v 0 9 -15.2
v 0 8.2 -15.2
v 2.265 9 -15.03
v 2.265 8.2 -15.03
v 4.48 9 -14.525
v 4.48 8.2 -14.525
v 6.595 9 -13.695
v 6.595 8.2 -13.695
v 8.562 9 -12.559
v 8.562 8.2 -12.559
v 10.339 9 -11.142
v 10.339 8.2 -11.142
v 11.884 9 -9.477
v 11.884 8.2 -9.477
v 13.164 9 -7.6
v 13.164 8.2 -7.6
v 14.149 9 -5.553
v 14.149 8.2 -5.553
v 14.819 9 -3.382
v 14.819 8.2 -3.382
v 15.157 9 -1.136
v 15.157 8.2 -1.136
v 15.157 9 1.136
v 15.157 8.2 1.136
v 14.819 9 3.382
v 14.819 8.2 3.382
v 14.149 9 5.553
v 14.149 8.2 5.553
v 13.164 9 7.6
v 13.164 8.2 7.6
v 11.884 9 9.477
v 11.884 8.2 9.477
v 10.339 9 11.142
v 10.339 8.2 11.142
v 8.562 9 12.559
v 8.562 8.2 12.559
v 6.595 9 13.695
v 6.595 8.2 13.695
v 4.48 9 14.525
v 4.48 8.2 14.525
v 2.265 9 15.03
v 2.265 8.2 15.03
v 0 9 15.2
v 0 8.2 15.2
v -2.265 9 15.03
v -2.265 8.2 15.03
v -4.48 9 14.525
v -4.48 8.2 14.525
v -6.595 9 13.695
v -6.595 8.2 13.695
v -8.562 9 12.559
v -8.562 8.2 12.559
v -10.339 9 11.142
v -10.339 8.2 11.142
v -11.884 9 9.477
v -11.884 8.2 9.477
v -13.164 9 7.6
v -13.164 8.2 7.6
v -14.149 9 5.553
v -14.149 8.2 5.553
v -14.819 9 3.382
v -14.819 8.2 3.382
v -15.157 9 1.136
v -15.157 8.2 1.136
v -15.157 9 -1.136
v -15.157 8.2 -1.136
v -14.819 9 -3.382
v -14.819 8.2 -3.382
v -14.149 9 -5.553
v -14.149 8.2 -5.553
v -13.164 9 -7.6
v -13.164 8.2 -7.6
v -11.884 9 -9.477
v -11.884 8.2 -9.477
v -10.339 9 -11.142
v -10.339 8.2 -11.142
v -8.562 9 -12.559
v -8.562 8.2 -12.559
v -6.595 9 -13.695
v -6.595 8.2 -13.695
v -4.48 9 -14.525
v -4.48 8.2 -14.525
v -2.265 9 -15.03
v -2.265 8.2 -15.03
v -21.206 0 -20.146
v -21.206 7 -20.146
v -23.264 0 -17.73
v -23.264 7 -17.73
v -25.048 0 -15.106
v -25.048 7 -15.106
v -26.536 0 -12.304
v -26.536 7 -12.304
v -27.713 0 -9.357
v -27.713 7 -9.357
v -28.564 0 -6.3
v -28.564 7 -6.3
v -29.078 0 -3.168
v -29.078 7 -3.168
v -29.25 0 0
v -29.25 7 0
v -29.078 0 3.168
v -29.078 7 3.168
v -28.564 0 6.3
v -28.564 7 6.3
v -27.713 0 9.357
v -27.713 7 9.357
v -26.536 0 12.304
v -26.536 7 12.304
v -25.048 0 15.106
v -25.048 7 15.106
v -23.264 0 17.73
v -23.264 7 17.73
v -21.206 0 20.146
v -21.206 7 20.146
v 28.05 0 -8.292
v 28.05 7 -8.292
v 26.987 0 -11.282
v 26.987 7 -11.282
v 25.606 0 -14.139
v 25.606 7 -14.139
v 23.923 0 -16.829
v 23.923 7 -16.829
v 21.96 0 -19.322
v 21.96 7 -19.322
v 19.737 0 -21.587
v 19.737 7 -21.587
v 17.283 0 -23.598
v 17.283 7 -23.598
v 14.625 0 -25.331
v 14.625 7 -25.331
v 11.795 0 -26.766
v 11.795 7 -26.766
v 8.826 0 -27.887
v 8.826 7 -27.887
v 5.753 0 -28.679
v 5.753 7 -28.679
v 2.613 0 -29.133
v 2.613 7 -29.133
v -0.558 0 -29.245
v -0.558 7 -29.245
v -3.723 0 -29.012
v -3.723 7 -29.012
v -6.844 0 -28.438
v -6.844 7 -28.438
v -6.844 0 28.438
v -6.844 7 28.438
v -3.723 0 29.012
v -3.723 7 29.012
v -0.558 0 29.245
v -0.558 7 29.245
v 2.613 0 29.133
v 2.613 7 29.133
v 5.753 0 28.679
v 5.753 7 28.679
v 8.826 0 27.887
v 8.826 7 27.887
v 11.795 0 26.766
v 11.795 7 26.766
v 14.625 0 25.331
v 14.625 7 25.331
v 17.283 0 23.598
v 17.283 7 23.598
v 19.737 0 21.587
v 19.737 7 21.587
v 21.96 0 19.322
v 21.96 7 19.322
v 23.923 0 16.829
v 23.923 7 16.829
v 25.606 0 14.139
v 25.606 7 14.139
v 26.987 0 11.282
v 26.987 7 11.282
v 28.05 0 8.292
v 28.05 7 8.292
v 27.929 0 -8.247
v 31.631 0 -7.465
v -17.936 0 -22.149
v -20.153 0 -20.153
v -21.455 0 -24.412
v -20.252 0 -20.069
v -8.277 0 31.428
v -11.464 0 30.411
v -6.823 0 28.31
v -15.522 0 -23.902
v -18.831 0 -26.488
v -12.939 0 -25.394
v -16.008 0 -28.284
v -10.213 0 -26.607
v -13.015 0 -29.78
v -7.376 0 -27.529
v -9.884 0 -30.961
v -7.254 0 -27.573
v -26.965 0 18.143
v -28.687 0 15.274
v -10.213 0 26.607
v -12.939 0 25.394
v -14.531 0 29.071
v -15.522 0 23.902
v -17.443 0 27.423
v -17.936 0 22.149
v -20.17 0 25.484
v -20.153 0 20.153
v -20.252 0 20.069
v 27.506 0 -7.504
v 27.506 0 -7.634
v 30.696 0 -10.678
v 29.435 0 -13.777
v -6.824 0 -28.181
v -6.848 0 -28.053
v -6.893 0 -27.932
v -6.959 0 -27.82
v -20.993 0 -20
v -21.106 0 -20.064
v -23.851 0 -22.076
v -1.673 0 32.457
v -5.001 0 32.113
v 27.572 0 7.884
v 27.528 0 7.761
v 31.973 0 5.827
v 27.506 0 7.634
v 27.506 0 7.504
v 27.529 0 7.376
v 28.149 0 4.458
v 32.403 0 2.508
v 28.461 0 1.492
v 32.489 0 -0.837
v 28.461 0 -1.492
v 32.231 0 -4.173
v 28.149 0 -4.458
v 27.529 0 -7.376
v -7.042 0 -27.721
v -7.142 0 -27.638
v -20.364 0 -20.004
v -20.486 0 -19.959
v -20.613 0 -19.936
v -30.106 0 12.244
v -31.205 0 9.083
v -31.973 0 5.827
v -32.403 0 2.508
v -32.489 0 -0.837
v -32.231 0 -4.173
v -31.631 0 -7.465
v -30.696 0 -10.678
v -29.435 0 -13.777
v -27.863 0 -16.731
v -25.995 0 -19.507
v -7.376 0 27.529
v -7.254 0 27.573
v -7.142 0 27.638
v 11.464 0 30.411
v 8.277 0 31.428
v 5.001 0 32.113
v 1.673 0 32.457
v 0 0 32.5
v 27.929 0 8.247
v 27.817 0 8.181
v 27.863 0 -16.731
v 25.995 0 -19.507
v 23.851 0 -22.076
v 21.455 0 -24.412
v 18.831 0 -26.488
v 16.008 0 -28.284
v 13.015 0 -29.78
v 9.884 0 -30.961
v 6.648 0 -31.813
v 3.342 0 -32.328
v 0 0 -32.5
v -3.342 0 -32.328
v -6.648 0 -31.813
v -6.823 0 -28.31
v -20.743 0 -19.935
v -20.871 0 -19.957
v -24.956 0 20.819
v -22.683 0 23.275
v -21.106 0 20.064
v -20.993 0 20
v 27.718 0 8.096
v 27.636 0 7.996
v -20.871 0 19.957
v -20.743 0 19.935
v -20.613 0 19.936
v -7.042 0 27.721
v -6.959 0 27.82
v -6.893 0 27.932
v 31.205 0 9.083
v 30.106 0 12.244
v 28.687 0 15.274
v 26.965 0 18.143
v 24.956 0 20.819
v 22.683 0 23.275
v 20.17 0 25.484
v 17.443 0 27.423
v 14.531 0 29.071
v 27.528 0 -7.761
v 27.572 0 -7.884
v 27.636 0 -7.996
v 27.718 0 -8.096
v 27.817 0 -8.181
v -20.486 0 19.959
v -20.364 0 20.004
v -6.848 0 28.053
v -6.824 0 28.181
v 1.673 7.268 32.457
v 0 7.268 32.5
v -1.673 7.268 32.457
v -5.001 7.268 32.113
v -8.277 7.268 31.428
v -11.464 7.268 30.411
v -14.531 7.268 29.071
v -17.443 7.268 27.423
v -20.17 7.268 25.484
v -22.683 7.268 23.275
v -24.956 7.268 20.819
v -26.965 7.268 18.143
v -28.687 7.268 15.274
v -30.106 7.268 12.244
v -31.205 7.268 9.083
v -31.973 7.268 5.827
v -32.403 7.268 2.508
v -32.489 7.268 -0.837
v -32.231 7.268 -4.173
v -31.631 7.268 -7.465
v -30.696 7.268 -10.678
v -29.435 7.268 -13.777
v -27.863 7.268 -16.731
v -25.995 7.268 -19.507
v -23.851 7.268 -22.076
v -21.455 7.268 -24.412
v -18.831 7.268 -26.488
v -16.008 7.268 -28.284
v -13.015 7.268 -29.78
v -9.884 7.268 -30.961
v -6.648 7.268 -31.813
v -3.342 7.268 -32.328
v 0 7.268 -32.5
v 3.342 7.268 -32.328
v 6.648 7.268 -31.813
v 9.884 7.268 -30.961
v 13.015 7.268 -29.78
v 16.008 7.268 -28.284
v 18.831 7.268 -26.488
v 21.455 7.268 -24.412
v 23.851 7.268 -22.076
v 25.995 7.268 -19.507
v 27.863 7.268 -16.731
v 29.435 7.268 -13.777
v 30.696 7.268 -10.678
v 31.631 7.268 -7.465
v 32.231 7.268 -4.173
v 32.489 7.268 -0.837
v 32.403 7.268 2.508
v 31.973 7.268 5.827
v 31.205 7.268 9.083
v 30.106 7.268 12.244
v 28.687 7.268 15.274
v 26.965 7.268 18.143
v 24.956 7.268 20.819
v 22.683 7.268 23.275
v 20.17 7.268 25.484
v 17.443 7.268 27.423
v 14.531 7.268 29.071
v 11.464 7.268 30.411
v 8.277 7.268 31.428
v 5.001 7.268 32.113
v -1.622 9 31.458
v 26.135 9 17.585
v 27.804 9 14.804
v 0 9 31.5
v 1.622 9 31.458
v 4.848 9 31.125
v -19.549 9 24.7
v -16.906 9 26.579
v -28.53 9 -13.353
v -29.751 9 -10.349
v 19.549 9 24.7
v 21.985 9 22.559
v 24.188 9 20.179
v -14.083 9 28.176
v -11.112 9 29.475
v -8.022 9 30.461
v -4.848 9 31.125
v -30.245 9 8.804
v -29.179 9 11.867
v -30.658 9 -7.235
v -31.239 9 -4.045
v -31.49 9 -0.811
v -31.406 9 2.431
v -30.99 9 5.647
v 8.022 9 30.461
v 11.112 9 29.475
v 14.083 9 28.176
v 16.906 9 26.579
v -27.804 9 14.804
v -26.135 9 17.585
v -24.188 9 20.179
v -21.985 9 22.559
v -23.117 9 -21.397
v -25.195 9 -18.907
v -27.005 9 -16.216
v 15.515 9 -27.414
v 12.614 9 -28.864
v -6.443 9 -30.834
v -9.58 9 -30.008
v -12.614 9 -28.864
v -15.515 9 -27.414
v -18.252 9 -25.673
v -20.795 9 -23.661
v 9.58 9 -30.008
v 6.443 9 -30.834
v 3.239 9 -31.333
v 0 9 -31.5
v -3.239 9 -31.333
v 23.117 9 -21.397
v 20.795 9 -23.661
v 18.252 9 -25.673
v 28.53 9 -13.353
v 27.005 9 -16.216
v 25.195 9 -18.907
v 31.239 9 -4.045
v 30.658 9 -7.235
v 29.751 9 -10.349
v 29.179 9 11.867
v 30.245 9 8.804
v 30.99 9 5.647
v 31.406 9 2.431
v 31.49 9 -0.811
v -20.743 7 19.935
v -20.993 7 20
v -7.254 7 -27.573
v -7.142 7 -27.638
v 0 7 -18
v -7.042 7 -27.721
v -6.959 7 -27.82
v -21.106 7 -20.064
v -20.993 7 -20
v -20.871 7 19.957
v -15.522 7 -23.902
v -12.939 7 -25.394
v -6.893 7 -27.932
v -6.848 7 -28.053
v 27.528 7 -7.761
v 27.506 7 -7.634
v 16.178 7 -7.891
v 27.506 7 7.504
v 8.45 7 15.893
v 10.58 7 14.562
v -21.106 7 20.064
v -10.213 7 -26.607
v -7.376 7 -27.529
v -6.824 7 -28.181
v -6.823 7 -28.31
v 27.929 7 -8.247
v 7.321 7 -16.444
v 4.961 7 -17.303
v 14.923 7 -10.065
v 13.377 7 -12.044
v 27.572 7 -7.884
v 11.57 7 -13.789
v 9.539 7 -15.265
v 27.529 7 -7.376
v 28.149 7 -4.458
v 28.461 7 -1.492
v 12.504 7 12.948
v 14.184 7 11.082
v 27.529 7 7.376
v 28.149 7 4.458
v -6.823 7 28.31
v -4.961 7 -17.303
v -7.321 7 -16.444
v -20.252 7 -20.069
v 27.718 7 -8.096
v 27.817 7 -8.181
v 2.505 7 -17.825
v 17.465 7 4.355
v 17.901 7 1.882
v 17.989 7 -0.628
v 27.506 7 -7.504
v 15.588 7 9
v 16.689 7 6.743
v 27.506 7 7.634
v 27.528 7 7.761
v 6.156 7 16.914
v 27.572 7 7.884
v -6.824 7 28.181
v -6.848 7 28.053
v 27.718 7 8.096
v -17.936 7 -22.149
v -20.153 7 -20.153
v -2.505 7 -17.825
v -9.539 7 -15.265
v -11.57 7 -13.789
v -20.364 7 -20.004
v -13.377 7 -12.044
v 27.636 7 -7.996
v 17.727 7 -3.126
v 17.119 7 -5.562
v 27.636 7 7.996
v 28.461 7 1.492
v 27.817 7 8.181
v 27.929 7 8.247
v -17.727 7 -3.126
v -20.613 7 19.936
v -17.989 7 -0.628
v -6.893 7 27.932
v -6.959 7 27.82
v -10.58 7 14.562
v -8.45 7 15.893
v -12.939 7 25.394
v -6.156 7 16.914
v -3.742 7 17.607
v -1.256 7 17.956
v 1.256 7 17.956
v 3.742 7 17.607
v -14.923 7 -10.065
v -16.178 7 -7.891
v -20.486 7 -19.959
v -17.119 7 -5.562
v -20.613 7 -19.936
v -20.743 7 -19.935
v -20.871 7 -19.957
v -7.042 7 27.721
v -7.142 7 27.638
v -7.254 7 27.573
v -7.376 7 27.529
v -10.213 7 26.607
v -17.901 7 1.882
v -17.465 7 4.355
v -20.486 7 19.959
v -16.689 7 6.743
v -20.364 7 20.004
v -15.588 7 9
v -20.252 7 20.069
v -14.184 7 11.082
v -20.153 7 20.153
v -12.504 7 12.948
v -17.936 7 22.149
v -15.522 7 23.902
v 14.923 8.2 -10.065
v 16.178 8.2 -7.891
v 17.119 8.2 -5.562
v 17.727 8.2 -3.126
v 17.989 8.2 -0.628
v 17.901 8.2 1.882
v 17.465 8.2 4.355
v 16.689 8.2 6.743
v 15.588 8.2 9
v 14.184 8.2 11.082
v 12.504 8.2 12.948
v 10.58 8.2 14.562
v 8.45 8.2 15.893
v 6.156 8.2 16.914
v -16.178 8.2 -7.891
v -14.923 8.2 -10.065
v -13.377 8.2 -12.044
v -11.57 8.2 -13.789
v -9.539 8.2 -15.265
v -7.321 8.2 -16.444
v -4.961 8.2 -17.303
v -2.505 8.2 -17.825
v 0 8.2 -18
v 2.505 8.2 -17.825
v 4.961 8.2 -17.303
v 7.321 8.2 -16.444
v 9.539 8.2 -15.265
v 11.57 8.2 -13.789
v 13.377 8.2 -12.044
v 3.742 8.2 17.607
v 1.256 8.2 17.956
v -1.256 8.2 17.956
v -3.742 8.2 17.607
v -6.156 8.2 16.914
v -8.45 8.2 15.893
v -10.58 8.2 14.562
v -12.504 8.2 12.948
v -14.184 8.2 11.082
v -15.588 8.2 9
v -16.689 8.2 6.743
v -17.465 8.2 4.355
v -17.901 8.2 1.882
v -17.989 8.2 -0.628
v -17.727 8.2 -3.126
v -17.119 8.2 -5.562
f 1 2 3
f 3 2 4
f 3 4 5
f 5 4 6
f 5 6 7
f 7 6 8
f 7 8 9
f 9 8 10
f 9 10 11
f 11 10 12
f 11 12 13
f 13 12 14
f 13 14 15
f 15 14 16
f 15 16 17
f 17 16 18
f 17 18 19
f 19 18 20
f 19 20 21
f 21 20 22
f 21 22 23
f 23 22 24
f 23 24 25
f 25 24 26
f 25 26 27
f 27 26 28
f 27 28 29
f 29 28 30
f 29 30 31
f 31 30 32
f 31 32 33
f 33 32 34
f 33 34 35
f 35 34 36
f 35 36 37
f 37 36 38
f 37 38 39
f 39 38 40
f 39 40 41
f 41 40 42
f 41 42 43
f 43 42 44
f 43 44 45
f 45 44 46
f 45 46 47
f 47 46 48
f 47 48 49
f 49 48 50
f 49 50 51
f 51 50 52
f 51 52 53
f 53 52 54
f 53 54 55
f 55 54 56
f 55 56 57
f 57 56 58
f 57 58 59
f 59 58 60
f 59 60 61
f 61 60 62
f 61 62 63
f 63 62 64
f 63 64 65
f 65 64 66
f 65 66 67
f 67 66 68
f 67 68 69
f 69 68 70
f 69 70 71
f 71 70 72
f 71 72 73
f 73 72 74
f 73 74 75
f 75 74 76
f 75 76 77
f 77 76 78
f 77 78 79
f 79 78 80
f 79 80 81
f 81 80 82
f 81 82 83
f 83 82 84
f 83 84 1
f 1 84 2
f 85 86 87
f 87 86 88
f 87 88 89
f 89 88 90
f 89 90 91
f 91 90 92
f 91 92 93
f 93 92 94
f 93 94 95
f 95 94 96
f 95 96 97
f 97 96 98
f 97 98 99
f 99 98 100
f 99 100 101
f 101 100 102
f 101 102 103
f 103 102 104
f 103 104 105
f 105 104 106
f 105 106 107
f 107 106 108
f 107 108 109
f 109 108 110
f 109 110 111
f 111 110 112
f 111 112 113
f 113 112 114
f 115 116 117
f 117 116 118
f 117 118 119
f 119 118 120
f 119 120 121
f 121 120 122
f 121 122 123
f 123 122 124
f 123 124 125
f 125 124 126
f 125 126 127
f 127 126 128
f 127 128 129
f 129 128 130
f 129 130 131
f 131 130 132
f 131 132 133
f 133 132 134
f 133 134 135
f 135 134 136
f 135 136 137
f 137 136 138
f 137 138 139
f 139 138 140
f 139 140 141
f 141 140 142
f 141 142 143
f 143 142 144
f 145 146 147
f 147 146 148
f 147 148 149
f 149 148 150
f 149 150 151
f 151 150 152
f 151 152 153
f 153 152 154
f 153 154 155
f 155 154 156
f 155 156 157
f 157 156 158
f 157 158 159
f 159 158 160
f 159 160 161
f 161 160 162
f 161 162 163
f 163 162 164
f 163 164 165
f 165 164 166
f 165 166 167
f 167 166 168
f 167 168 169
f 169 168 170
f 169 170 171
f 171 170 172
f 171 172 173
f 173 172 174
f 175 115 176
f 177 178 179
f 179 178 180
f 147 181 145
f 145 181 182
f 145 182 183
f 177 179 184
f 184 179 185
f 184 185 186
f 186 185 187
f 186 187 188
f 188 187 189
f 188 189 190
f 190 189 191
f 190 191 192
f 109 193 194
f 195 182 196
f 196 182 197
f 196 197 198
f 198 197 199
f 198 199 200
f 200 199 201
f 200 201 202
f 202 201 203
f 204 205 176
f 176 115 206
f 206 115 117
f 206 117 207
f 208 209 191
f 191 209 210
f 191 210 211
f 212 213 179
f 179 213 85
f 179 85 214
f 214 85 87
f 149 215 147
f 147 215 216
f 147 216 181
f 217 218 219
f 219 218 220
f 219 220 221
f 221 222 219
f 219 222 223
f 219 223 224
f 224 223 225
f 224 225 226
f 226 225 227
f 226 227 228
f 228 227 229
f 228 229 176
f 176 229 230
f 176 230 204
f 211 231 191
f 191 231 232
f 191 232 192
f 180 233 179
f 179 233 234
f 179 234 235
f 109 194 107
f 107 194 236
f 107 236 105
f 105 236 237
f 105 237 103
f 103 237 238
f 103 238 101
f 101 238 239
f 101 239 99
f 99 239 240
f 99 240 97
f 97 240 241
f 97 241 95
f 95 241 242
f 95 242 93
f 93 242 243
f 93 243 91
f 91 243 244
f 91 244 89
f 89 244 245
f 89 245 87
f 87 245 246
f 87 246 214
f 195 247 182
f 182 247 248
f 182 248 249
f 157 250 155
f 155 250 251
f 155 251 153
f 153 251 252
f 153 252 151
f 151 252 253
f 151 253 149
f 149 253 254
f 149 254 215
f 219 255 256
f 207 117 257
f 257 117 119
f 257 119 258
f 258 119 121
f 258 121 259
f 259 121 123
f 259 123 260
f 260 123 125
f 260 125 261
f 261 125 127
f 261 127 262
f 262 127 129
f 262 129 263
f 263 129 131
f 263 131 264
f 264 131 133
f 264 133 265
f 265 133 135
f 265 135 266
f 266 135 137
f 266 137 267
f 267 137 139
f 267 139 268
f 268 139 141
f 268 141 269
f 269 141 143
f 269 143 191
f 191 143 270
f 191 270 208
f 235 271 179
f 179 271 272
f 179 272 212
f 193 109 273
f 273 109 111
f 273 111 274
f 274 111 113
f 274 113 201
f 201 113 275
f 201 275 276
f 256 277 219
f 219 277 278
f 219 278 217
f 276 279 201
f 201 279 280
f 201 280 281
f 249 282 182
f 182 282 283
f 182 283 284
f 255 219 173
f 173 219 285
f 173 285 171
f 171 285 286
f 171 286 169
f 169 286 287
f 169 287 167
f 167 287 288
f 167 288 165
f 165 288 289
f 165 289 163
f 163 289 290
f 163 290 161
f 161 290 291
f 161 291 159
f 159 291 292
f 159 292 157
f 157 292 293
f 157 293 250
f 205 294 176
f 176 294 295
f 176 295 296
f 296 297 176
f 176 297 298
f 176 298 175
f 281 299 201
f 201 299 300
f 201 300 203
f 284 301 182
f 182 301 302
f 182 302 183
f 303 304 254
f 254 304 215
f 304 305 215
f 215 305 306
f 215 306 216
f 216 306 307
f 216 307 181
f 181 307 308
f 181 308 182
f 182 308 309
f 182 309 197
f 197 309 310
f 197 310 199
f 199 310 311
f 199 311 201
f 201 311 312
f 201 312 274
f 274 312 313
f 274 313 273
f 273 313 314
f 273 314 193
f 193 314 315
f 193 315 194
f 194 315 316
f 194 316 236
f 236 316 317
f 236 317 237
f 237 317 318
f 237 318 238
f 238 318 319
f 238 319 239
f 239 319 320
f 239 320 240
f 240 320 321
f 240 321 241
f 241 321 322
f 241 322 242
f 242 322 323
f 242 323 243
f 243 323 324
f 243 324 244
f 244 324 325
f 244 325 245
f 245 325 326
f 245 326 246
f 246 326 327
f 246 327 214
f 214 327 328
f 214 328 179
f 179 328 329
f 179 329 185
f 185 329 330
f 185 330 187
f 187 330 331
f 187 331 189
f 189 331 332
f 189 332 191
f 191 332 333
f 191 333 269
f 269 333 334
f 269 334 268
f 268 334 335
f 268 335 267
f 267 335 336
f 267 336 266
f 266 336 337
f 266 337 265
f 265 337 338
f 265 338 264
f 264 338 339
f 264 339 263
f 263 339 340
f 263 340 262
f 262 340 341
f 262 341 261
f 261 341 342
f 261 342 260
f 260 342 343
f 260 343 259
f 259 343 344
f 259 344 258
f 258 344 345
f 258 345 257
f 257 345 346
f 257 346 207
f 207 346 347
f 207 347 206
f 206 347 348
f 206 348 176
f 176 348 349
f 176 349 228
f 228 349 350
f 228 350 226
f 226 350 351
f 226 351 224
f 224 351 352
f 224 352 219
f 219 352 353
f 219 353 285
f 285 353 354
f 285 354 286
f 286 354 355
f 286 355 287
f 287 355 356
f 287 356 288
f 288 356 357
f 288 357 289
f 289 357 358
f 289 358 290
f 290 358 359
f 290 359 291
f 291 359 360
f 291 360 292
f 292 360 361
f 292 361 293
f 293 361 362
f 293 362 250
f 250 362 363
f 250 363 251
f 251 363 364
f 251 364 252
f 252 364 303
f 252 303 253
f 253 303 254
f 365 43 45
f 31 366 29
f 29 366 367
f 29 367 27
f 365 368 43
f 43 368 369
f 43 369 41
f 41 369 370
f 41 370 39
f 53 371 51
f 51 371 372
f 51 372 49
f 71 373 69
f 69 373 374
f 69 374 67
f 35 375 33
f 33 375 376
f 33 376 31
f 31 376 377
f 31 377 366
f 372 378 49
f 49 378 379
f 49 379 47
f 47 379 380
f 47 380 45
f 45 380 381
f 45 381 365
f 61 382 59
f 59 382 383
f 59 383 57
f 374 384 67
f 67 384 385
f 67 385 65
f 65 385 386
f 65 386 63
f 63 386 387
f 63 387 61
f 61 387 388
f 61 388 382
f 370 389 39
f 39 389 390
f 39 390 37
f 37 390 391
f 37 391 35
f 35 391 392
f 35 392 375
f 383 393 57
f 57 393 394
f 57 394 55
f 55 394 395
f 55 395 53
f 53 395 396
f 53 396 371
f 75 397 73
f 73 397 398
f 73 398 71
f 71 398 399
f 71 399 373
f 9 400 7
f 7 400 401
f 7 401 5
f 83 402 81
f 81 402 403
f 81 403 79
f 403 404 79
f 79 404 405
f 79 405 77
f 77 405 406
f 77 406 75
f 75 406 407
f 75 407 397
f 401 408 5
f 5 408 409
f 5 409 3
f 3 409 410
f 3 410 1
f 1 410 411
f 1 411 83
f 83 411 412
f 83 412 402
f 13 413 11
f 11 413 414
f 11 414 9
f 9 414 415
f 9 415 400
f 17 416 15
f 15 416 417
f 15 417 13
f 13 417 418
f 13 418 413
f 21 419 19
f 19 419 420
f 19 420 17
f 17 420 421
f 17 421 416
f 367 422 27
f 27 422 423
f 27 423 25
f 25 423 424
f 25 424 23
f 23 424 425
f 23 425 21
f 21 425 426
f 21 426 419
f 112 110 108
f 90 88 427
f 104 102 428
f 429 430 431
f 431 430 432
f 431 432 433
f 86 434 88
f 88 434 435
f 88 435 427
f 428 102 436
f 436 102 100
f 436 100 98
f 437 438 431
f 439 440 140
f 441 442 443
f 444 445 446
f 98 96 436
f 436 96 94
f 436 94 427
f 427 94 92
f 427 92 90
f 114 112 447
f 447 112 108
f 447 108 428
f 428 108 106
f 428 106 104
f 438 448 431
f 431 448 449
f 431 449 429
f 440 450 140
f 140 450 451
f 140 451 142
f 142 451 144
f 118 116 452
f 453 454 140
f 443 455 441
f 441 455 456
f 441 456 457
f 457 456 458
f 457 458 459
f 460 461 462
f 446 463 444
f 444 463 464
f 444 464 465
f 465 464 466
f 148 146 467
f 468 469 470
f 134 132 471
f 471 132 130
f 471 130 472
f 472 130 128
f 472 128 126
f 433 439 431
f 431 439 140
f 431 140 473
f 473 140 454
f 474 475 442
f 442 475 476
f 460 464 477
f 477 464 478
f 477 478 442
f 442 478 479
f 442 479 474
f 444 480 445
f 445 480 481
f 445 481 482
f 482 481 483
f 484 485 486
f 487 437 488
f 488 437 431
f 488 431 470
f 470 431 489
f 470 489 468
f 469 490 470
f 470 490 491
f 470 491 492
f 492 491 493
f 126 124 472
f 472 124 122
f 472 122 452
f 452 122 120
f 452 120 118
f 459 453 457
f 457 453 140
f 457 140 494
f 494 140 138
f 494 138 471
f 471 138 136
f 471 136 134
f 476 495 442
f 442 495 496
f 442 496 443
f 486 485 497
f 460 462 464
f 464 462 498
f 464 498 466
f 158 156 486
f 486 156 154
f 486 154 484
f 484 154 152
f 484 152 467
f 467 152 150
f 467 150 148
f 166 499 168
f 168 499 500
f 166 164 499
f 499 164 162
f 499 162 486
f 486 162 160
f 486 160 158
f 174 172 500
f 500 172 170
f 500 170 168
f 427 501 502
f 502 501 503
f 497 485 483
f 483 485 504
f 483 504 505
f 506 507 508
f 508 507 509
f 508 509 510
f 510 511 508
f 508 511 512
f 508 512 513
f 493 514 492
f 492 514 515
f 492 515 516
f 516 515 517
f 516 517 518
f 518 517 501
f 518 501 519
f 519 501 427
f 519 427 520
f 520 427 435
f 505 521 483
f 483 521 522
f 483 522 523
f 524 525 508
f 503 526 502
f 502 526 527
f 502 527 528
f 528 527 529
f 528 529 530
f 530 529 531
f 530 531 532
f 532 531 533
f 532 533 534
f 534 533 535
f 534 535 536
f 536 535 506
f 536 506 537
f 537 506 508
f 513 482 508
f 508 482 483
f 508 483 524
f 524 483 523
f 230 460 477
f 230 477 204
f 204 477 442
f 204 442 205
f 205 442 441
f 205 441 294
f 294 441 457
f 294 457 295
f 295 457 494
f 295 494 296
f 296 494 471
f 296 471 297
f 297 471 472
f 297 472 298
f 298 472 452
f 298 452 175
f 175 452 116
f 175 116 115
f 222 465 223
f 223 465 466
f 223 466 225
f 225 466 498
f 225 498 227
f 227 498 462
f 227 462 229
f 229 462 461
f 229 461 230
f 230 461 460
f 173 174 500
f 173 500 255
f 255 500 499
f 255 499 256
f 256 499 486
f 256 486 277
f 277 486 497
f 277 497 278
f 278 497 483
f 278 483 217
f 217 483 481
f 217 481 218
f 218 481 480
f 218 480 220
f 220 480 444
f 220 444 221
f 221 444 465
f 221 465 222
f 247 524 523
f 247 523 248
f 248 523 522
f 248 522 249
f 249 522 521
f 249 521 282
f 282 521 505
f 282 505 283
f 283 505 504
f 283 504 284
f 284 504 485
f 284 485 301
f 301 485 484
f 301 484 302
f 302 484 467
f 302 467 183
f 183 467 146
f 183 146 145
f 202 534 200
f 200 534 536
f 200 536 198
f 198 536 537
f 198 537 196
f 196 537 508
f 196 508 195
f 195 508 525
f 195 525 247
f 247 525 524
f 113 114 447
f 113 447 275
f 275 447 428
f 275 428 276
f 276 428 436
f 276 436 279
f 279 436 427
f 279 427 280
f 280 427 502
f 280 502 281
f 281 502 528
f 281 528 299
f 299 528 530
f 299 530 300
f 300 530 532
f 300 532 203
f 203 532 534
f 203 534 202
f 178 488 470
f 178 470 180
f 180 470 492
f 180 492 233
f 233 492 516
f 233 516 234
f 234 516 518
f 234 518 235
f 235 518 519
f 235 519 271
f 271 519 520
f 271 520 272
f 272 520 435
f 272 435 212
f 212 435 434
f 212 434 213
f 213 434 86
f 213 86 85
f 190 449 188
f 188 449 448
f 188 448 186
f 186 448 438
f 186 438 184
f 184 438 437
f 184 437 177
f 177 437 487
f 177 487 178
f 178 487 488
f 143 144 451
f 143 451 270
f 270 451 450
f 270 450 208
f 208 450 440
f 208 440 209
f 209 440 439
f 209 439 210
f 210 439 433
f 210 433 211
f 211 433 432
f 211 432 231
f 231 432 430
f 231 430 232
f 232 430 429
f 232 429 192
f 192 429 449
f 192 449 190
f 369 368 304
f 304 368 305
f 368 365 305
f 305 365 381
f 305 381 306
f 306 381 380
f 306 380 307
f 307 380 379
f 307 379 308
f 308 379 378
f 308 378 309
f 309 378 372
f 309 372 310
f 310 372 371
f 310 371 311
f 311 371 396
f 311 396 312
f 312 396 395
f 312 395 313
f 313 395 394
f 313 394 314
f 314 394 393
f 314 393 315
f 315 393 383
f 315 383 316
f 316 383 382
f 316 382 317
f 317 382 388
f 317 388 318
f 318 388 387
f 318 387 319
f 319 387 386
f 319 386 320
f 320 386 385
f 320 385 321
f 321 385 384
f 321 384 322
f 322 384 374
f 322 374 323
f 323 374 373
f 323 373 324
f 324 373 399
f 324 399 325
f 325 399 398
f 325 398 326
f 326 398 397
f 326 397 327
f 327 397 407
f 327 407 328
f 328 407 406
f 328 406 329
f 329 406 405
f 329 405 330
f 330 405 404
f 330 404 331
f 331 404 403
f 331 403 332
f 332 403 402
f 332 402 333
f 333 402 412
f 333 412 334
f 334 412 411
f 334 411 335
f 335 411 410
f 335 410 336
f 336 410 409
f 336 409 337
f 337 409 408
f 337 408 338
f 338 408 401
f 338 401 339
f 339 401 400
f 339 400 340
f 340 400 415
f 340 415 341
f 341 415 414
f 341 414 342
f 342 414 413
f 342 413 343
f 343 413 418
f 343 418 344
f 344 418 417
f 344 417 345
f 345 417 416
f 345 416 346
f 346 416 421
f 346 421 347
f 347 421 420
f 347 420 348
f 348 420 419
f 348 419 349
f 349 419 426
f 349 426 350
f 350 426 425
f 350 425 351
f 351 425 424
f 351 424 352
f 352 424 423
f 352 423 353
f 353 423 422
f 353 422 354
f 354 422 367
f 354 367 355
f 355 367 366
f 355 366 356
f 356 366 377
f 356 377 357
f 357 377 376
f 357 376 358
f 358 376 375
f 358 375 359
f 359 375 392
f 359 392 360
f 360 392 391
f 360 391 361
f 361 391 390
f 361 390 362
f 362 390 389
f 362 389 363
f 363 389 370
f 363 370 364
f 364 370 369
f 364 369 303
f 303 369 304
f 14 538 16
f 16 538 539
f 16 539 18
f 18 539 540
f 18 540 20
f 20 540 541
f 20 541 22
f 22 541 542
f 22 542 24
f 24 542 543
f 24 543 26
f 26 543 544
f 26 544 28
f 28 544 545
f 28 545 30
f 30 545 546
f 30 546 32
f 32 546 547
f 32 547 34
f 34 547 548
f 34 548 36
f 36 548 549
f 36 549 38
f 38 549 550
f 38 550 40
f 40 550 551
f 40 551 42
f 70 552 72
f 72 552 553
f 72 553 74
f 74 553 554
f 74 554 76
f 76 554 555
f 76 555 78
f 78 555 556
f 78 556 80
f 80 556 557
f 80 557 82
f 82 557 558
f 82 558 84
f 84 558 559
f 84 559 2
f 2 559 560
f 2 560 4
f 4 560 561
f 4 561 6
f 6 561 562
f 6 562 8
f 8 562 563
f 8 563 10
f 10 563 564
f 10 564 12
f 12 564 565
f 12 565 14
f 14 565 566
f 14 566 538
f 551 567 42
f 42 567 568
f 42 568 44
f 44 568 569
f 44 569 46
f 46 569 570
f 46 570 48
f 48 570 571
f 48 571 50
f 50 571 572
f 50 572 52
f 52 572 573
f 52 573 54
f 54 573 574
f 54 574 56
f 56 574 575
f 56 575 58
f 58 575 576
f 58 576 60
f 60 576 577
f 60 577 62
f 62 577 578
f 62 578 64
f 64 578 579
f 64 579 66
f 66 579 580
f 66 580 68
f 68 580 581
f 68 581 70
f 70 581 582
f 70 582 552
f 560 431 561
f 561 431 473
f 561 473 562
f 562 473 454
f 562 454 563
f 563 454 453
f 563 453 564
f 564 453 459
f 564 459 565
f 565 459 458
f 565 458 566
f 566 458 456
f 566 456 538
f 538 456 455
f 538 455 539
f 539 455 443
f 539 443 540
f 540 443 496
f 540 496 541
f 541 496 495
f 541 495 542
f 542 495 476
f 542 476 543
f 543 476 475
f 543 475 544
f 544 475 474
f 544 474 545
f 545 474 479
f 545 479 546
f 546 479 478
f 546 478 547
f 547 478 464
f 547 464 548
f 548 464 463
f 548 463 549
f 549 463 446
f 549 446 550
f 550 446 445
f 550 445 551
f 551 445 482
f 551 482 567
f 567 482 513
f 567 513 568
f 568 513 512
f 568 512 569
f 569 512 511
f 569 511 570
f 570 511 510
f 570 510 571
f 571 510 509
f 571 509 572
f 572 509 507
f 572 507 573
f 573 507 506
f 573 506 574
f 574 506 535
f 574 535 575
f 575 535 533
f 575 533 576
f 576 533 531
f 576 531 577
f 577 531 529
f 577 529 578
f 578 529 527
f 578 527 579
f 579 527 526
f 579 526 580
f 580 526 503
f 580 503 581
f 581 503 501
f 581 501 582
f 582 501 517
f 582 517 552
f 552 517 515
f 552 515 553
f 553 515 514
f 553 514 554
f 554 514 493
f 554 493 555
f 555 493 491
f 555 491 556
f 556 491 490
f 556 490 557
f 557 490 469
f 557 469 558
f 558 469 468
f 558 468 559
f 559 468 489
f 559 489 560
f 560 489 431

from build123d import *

# Parameters (mm, degrees)
SKETCH_1_R               = 32.5
SKETCH_1_R_2             = 28.5
EXTRUDE_1_DEPTH          = 7
SKETCH_2_R               = 32.5
EXTRUDE_2_DEPTH          = 2
SKETCH_3_R               = 29.25
CUT_EXTRUDE_1_DEPTH      = 7
EXTRUDE_3_DEPTH          = 7
PATTERN_CIRCULAR_1_COUNT = 3
CHAMFER_1_SIZE           = 1
CHAMFER_1_SIZE2          = 1.732050808
SKETCH_5_R               = 15.2
CUT_EXTRUDE_2_DEPTH      = 47.491934784
SKETCH_6_R               = 18
CUT_EXTRUDE_3_DEPTH      = 1.2


with BuildPart() as part:
    # 草图1 → 凸台-拉伸1 (new body)
    with BuildSketch(Plane(origin=(0, 0, 0), x_dir=(1, 0, 0), z_dir=(0, 1, 0))):
        with Locations(Location((0, 0, 0), (0, 0, 270))):
            Circle(SKETCH_1_R)
        with Locations(Location((0, 0, 0), (0, 0, 270))):
            Circle(SKETCH_1_R_2, mode=Mode.SUBTRACT)
    extrude(amount=EXTRUDE_1_DEPTH)

    # 草图2 → 凸台-拉伸2 (add)
    with BuildSketch(Plane(origin=(0, 7, 0), x_dir=(1, 0, 0), z_dir=(0, 1, 0))):
        with Locations(Location((0, 0, 0), (0, 0, 270))):
            Circle(SKETCH_2_R)
    extrude(amount=EXTRUDE_2_DEPTH)

    # 草图3 → 切除-拉伸1 (cut)
    with BuildSketch(Plane.XZ.offset(-7)):
        with Locations(Location((0, 0, 0), (0, 0, 90))):
            Circle(SKETCH_3_R)
    extrude(amount=CUT_EXTRUDE_1_DEPTH, mode=Mode.SUBTRACT)

    # 草图4 → 凸台-拉伸3 (add)
    with BuildSketch(Plane.XZ.offset(-7)):
        with BuildLine():
            ThreePointArc((28.04994434, -8.292353255), (27.601420816, -7.941285695), (27.528886049, -7.376342785))
            ThreePointArc((27.528886049, -7.376342785), (28.5, 0), (27.528886049, 7.376342785))
            ThreePointArc((27.528886049, 7.376342785), (27.601420816, 7.941285695), (28.04994434, 8.292353255))
            ThreePointArc((28.04994434, 8.292353255), (29.25, 0), (28.04994434, -8.292353255))
        make_face()
    extrude_3 = extrude(amount=EXTRUDE_3_DEPTH)

    # 阵列(圆周)1: 凸台-拉伸3 ×3 about axis
    pattern_circular_1_axis = Axis((0, 0, 0), (0, 1, 0))
    for i in range(1, PATTERN_CIRCULAR_1_COUNT):
        add(extrude_3.rotate(pattern_circular_1_axis, i * 360 / PATTERN_CIRCULAR_1_COUNT))

    # 倒角1
    chamfer_1_edges = [part.edges().sort_by_distance(p)[0] for p in [
        (0, 9, -32.5),
    ]]
    chamfer_1_side = [part.faces().sort_by_distance(p)[0] for p in [
        (0, 9, 0),
    ]]
    chamfer(chamfer_1_edges, length=CHAMFER_1_SIZE, length2=CHAMFER_1_SIZE2, reference=chamfer_1_side[0])

    # 草图5 → 切除-拉伸2 (cut, through all)
    with BuildSketch(Plane.XZ.offset(-7)):
        with Locations(Location((0, 0, 0), (0, 0, 270))):
            Circle(SKETCH_5_R)
    extrude(amount=-CUT_EXTRUDE_2_DEPTH, mode=Mode.SUBTRACT)

    # 草图6 → 切除-拉伸3 (cut)
    with BuildSketch(Plane.XZ.offset(-7)):
        with Locations(Location((0, 0, 0), (0, 0, 270))):
            Circle(SKETCH_6_R)
    extrude(amount=-CUT_EXTRUDE_3_DEPTH, mode=Mode.SUBTRACT)


solid = part.part
